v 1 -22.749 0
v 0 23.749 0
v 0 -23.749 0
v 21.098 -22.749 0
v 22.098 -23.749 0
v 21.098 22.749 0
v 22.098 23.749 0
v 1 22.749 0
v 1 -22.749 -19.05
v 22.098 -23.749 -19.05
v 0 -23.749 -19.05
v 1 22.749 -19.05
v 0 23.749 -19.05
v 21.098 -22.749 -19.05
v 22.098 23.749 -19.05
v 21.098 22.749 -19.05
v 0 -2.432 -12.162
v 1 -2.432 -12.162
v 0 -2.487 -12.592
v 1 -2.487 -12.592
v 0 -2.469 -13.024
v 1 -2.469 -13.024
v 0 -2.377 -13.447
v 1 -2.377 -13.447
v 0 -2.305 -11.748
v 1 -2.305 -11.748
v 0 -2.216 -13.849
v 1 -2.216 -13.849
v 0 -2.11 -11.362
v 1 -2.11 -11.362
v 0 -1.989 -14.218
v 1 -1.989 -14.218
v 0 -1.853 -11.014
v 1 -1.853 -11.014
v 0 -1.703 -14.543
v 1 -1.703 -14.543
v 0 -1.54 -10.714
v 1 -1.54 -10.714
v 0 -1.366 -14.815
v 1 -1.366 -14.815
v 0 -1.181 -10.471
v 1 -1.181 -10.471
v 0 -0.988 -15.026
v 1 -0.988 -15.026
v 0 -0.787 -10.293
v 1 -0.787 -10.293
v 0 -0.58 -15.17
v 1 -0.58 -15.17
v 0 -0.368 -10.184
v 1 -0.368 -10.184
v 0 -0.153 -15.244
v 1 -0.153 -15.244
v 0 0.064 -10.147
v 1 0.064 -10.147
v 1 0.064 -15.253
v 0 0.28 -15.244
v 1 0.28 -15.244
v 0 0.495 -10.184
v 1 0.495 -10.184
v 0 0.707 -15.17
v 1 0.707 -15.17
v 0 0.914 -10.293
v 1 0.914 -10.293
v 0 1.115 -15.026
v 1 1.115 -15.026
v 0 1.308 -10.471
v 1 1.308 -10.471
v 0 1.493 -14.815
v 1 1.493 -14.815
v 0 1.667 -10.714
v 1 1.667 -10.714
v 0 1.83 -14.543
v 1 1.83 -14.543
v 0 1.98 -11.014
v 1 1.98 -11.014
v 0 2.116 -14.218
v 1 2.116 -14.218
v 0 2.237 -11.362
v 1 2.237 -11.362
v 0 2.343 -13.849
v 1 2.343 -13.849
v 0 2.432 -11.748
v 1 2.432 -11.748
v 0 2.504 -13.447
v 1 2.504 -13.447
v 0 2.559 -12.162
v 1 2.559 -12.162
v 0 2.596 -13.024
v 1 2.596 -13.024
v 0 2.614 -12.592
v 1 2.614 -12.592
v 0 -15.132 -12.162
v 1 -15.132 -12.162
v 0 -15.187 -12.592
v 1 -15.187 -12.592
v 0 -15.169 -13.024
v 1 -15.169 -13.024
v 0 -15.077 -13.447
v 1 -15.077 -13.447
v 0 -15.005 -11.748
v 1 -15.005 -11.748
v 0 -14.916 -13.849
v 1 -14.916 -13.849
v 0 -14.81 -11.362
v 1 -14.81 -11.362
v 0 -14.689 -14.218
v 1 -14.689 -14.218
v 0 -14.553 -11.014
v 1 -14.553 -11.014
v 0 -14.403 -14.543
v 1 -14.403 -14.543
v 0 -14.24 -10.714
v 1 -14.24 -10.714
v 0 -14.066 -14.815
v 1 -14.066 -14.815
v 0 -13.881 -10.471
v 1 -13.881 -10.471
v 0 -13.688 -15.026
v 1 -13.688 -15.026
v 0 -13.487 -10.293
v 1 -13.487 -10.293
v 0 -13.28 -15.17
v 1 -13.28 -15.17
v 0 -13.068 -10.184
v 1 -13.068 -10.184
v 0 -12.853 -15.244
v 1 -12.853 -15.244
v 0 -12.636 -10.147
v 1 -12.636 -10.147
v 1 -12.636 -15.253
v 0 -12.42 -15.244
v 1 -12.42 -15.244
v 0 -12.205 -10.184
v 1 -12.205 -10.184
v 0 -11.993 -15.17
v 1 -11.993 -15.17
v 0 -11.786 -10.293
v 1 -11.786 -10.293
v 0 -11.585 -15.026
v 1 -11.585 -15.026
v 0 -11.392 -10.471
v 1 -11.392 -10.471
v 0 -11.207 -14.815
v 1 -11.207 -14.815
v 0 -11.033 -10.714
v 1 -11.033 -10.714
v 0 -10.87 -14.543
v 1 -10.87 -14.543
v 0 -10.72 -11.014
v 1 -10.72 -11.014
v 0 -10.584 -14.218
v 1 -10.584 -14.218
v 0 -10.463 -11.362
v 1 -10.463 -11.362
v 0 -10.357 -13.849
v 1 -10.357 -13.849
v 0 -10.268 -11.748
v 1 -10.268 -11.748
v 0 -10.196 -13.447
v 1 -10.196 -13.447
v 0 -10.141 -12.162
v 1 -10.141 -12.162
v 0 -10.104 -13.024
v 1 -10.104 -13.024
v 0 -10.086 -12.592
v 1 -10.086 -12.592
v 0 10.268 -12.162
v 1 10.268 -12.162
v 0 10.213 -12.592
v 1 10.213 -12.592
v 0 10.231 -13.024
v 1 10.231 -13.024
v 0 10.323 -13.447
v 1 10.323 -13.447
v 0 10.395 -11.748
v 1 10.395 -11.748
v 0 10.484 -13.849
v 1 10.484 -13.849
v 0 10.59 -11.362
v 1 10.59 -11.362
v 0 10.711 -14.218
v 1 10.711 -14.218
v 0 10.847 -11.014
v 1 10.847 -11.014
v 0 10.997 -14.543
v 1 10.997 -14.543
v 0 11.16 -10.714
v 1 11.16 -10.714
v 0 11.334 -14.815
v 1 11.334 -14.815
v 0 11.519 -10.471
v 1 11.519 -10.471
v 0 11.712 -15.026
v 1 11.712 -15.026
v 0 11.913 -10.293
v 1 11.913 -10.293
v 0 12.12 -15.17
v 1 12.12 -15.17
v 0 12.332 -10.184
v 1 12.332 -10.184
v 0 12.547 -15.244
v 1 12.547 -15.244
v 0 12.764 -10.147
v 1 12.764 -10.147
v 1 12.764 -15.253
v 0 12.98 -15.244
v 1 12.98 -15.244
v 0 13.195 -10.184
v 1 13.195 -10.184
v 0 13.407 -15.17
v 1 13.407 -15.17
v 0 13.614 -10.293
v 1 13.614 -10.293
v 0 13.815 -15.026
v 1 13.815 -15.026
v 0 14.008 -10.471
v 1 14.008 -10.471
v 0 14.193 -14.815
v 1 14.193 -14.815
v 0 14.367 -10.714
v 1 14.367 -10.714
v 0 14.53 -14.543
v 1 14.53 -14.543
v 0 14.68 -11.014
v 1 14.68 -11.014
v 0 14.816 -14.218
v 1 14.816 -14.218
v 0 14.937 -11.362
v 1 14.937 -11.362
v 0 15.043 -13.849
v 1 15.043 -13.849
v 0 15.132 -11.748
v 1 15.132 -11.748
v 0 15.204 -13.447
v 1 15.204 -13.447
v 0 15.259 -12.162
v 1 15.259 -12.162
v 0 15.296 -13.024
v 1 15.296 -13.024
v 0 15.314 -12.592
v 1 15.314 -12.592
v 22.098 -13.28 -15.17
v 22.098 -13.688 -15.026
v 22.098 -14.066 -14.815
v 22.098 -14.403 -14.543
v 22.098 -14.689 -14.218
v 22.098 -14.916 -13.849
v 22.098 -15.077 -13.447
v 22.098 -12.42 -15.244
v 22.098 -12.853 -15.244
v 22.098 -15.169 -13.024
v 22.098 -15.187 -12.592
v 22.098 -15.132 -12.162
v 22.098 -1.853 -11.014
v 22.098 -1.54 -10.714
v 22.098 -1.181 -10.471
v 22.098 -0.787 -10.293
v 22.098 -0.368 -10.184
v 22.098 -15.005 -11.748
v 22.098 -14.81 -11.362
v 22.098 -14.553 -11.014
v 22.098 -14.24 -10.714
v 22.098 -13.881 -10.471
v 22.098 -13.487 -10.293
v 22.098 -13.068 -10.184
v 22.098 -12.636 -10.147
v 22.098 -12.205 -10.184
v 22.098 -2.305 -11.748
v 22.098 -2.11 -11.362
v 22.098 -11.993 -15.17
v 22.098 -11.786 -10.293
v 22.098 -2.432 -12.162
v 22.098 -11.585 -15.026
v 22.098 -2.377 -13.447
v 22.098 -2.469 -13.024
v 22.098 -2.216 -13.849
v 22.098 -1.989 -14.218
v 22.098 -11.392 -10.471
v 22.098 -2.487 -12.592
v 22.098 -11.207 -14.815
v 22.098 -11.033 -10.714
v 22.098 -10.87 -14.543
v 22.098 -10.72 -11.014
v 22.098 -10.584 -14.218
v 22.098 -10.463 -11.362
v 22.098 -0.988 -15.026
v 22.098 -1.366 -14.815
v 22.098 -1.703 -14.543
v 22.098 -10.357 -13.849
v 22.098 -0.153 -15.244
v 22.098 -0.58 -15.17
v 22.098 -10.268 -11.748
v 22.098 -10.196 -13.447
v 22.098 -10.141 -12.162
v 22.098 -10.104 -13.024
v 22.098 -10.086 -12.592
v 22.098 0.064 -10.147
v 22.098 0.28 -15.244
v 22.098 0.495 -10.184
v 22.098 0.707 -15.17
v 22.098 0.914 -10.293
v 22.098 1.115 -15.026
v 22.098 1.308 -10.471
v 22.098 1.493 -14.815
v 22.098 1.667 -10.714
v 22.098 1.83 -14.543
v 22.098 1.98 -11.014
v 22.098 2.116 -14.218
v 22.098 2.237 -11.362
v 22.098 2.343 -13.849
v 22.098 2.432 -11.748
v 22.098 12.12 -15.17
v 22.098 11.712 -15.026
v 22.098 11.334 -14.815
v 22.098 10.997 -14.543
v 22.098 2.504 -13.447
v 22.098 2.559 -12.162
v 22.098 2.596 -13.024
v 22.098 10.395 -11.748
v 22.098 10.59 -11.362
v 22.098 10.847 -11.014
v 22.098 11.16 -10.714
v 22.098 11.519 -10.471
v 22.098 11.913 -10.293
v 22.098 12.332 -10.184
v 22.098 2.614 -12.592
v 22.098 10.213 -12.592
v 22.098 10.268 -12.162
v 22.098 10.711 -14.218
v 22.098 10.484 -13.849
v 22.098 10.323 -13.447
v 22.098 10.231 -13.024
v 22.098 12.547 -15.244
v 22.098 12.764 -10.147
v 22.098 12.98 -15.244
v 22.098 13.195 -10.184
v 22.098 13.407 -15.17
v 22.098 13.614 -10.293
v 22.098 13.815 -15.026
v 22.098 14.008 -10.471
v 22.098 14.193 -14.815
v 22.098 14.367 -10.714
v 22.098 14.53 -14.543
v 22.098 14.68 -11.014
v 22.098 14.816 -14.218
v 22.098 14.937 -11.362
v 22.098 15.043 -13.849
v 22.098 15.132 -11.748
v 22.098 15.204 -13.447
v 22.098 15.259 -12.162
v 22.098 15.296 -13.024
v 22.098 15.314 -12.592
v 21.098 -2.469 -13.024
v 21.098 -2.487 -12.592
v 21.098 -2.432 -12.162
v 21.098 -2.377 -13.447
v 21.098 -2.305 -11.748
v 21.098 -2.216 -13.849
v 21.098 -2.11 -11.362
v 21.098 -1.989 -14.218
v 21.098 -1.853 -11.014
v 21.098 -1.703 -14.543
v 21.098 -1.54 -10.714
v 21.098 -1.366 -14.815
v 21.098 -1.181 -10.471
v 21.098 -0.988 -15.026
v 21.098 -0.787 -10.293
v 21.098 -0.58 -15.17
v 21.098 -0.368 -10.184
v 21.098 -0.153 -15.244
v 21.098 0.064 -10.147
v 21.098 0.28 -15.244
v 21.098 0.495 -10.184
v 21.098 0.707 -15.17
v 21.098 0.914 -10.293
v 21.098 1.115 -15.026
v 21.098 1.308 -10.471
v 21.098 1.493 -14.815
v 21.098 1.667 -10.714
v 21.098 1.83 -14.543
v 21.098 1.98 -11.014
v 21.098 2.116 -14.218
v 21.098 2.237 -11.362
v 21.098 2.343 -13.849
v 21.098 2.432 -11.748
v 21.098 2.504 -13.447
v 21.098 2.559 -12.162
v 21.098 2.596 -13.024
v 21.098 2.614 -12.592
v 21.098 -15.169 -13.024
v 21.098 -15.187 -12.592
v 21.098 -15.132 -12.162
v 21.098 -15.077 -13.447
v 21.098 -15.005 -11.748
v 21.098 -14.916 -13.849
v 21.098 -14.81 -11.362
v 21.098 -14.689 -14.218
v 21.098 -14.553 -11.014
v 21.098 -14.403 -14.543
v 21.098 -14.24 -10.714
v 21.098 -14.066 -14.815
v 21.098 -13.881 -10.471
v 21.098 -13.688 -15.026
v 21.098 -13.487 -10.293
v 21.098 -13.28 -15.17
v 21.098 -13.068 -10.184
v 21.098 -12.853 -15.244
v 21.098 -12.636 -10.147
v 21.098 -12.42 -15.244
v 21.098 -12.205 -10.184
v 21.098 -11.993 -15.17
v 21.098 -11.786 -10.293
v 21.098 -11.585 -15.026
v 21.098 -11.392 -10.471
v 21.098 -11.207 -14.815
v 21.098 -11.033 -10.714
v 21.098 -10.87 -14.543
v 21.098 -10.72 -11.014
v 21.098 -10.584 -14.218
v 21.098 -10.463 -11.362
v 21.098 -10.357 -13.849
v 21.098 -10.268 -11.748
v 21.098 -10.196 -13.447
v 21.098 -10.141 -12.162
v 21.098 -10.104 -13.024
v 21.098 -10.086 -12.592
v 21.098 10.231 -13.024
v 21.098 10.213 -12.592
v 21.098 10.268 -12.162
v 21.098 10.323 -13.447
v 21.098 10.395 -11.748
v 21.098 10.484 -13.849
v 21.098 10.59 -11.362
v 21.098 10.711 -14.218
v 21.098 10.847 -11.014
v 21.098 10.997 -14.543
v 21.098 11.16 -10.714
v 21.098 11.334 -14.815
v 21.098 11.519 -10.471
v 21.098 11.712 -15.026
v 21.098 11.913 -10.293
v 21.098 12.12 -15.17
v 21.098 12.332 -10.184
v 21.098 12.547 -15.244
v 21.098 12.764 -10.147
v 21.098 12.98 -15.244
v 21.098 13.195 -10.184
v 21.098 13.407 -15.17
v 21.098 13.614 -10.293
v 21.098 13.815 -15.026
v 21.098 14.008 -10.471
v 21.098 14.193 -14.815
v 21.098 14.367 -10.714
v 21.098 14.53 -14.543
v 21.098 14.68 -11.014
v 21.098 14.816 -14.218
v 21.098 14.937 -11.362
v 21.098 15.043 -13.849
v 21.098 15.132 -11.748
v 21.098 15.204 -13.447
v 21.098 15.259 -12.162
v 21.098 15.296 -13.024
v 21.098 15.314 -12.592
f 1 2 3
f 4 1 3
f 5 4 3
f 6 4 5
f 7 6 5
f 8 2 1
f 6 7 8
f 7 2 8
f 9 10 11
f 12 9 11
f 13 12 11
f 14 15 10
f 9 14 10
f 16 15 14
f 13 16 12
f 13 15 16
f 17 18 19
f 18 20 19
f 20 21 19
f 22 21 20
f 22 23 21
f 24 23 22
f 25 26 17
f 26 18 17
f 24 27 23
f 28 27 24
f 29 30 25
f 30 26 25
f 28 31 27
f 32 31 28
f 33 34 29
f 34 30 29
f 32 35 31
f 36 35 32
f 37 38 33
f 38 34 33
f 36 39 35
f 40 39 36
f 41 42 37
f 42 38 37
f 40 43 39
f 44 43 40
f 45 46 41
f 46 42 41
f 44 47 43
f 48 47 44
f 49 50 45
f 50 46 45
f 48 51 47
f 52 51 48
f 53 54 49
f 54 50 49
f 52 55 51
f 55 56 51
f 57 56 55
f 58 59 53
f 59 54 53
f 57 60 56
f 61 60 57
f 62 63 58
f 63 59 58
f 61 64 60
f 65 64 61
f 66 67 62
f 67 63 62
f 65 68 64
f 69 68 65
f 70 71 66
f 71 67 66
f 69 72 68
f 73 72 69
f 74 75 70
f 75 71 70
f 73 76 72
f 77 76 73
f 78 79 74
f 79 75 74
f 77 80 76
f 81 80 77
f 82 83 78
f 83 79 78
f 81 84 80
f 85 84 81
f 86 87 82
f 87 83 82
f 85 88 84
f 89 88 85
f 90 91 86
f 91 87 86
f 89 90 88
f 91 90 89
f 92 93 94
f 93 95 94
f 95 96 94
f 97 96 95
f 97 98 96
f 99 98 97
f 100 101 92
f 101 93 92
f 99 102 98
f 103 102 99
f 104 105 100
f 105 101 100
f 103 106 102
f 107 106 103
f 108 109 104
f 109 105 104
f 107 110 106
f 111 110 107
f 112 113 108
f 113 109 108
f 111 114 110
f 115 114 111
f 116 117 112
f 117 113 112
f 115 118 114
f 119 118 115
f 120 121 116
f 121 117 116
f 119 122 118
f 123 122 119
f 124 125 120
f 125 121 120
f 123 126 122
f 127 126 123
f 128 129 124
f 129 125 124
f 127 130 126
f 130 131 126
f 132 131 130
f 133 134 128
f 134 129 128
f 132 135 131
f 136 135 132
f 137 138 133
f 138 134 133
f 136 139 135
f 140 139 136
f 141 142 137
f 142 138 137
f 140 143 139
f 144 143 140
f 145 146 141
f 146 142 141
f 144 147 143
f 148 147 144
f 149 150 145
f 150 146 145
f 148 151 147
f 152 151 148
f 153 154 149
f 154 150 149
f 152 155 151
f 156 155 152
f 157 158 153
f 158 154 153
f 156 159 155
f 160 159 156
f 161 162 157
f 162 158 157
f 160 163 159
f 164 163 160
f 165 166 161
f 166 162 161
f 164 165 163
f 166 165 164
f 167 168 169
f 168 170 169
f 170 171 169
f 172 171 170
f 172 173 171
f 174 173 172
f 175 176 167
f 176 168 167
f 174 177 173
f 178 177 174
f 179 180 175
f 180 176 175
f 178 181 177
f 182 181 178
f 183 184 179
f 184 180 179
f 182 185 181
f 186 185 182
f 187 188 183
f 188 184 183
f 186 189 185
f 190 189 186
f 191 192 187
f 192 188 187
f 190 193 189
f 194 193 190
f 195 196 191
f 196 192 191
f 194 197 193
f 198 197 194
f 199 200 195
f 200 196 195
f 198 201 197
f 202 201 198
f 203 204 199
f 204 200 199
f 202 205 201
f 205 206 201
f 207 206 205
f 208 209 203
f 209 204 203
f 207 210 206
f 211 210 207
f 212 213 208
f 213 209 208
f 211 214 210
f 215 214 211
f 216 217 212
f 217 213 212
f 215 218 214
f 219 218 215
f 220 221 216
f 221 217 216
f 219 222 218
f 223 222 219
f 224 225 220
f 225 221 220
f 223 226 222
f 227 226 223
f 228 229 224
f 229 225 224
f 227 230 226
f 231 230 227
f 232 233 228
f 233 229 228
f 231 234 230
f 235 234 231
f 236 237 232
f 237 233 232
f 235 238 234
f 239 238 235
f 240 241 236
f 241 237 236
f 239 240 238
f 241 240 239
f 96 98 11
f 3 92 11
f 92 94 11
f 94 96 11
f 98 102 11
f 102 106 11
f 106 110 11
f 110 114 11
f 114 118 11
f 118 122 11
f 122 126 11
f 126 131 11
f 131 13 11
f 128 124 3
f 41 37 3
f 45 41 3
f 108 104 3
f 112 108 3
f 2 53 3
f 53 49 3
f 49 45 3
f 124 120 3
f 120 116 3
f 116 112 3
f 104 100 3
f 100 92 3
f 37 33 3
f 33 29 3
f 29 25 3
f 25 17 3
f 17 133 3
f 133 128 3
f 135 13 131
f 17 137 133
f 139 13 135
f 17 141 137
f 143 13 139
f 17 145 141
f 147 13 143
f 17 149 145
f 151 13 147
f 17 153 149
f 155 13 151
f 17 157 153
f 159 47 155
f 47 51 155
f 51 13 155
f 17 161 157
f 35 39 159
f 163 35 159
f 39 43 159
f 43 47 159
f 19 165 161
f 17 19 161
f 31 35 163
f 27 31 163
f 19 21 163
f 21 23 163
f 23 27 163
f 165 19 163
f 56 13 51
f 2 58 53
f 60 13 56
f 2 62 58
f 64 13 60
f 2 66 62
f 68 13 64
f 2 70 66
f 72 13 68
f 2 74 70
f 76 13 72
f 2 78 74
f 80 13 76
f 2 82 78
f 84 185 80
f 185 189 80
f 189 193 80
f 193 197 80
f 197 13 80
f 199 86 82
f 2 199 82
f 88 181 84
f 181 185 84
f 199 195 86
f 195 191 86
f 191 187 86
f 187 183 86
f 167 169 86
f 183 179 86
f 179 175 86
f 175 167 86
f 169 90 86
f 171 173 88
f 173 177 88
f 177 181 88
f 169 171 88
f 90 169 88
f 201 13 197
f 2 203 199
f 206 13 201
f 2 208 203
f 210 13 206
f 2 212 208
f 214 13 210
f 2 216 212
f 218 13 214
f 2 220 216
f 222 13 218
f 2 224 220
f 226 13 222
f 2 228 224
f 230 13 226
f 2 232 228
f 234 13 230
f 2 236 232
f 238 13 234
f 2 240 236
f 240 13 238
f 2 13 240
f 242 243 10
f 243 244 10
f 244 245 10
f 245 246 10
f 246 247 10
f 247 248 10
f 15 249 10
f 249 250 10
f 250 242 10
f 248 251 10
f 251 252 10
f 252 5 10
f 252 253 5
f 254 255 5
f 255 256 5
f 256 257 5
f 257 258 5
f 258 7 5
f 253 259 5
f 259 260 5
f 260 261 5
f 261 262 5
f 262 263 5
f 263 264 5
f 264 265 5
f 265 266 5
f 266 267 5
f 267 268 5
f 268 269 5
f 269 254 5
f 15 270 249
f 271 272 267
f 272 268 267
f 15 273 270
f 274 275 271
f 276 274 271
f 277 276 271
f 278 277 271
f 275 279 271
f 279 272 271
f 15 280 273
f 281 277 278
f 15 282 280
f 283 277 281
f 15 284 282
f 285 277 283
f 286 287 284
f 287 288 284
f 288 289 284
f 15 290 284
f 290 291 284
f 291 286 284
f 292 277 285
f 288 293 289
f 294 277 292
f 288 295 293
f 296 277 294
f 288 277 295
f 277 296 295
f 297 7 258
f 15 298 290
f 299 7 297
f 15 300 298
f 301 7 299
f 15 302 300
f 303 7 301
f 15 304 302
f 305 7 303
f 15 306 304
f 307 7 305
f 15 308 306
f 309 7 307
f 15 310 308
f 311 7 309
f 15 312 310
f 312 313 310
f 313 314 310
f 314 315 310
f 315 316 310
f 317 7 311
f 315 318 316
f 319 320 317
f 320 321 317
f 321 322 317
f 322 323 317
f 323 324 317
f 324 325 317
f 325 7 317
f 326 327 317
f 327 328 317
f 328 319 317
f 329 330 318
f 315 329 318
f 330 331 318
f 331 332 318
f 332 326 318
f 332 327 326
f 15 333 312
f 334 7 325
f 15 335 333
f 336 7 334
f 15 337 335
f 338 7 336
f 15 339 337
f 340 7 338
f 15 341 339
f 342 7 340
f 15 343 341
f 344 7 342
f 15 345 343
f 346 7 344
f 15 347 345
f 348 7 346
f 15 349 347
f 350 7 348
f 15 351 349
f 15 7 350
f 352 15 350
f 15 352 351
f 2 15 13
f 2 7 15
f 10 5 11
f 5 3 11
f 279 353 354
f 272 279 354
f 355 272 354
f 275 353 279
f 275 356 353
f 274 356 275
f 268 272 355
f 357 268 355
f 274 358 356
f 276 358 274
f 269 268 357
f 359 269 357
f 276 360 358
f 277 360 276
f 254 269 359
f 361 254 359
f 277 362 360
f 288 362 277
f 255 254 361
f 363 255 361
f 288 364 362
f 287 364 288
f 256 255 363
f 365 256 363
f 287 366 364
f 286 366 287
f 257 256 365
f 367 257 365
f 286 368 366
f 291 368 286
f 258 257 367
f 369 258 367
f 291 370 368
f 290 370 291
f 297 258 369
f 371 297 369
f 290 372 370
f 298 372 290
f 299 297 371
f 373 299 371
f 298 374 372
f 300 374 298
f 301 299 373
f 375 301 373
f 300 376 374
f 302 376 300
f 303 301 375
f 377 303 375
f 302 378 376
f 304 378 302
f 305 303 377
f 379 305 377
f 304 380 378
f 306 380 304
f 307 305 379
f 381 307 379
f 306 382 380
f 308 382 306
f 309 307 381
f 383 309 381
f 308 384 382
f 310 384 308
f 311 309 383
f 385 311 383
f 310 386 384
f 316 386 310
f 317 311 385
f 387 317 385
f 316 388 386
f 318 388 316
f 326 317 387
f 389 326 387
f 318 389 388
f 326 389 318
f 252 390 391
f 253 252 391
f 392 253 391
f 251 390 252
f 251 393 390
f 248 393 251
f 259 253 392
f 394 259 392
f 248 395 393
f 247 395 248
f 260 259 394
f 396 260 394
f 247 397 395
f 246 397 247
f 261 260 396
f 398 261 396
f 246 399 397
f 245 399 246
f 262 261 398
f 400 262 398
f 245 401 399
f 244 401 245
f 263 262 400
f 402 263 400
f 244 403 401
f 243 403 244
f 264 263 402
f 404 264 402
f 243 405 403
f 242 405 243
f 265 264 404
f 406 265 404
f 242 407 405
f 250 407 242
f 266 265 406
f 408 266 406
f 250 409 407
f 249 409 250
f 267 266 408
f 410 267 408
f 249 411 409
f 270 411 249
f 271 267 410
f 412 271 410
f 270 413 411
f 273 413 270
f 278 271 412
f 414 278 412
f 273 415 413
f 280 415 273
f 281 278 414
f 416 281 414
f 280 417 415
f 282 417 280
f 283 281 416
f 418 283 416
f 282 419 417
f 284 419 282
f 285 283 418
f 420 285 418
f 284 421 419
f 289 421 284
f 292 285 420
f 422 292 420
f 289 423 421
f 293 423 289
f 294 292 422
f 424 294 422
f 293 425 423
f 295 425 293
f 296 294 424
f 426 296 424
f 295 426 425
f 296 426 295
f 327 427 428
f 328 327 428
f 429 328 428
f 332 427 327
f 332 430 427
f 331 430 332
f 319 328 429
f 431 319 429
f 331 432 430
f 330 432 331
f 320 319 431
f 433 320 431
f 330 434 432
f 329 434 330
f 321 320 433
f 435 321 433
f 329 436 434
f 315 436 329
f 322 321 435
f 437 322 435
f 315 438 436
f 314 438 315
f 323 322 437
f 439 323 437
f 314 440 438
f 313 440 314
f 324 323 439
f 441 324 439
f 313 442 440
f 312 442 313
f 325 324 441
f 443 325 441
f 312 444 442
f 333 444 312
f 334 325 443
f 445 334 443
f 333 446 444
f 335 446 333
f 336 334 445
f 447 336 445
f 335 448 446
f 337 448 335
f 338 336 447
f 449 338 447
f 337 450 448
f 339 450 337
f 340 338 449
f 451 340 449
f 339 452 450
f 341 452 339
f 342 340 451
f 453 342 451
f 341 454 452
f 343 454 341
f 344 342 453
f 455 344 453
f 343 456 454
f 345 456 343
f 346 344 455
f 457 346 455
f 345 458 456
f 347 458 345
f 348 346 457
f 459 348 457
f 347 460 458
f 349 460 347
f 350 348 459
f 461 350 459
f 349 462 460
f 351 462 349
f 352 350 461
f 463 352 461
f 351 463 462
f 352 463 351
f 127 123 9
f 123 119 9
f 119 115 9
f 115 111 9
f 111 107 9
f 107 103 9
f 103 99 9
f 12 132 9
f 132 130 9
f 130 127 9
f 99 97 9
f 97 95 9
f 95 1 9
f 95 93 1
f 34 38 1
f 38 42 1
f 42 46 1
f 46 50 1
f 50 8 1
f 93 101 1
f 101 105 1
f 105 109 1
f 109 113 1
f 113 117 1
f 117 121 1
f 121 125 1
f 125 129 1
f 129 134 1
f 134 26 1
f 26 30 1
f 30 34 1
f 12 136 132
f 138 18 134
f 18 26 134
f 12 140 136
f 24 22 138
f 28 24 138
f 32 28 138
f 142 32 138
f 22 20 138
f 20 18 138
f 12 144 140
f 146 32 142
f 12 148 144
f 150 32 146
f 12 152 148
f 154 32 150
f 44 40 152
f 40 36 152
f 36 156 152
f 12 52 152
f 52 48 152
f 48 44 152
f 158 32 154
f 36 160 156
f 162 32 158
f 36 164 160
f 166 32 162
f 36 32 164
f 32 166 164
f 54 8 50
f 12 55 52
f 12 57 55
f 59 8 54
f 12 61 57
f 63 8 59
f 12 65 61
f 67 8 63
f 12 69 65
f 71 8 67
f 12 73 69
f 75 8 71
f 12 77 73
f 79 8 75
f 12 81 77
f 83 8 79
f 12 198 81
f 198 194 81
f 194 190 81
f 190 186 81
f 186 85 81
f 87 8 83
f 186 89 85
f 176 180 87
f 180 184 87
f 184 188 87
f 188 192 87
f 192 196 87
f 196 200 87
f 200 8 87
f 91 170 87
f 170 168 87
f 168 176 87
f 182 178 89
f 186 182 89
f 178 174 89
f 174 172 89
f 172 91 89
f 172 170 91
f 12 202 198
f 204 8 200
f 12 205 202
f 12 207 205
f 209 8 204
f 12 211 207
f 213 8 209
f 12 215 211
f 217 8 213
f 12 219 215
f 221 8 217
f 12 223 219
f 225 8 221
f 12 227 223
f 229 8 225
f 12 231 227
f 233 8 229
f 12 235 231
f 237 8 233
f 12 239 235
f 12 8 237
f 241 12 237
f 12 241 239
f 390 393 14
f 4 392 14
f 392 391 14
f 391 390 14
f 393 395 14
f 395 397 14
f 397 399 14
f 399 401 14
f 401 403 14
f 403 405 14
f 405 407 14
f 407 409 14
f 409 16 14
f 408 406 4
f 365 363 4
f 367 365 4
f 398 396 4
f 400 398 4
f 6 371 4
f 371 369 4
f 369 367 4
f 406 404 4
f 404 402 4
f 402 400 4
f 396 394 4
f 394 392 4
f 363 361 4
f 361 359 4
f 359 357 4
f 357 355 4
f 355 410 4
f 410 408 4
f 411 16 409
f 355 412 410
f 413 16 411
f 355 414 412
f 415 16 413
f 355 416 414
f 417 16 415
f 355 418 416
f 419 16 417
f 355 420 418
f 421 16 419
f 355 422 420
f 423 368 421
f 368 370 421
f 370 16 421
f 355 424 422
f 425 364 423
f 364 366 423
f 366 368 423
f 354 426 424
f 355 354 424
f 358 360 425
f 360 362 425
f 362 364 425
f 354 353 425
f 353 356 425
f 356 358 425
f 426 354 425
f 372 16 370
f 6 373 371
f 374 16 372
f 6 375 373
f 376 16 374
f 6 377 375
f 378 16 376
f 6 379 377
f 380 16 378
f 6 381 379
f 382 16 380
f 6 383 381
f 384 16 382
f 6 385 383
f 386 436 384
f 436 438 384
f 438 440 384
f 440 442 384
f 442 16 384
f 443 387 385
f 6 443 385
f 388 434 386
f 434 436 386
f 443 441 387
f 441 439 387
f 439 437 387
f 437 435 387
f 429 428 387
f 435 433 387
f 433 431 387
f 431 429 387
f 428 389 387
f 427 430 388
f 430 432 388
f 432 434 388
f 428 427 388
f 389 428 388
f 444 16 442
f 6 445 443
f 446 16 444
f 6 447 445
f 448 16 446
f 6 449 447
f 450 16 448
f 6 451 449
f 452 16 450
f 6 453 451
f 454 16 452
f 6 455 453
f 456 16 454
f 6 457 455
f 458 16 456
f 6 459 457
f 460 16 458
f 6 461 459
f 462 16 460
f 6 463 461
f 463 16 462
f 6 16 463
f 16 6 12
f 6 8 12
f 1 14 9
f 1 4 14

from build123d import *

# Parameters (mm, degrees)
SKETCH1_W           = 22.098
SKETCH1_H           = 19.05
BOSS_EXTRUDE1_DEPTH = 23.749
SKETCH2_R           = 2.5527
CUT_EXTRUDE1_DEPTH  = 38.619663808
SHELL1_T            = -1.000000032


with BuildPart() as part:
    # Sketch1 → Boss-Extrude1 (new, symmetric)
    with BuildSketch(Plane(origin=(0, 0, 0), x_dir=(1, 0, 0), z_dir=(0, 1, 0))):
        with Locations((11.049, 9.525)):
            Rectangle(SKETCH1_W, SKETCH1_H)
    extrude(amount=BOSS_EXTRUDE1_DEPTH, both=True)

    # Sketch2 → Cut-Extrude1 (cut, through all)
    with BuildSketch(Plane.ZY):
        with Locations((-12.7, 12.7635)):
            Circle(SKETCH2_R)
        with Locations((-12.7, -12.6365)):
            Circle(SKETCH2_R)
        with Locations((-12.7, 0.0635)):
            Circle(SKETCH2_R)
    extrude(amount=-CUT_EXTRUDE1_DEPTH, mode=Mode.SUBTRACT)

    # Shell1
    shell1_openings = [part.faces().sort_by_distance(p)[0] for p in [
        (11.049, 12.7635, -15.2527),
        (11.049, -12.6365, -15.2527),
        (11.049, 0.0635, -15.2527),
        (11.049, 0, -19.05),
        (11.049, 0, 0),
    ]]
    offset(amount=SHELL1_T, openings=shell1_openings, kind=Kind.INTERSECTION)


solid = part.part
